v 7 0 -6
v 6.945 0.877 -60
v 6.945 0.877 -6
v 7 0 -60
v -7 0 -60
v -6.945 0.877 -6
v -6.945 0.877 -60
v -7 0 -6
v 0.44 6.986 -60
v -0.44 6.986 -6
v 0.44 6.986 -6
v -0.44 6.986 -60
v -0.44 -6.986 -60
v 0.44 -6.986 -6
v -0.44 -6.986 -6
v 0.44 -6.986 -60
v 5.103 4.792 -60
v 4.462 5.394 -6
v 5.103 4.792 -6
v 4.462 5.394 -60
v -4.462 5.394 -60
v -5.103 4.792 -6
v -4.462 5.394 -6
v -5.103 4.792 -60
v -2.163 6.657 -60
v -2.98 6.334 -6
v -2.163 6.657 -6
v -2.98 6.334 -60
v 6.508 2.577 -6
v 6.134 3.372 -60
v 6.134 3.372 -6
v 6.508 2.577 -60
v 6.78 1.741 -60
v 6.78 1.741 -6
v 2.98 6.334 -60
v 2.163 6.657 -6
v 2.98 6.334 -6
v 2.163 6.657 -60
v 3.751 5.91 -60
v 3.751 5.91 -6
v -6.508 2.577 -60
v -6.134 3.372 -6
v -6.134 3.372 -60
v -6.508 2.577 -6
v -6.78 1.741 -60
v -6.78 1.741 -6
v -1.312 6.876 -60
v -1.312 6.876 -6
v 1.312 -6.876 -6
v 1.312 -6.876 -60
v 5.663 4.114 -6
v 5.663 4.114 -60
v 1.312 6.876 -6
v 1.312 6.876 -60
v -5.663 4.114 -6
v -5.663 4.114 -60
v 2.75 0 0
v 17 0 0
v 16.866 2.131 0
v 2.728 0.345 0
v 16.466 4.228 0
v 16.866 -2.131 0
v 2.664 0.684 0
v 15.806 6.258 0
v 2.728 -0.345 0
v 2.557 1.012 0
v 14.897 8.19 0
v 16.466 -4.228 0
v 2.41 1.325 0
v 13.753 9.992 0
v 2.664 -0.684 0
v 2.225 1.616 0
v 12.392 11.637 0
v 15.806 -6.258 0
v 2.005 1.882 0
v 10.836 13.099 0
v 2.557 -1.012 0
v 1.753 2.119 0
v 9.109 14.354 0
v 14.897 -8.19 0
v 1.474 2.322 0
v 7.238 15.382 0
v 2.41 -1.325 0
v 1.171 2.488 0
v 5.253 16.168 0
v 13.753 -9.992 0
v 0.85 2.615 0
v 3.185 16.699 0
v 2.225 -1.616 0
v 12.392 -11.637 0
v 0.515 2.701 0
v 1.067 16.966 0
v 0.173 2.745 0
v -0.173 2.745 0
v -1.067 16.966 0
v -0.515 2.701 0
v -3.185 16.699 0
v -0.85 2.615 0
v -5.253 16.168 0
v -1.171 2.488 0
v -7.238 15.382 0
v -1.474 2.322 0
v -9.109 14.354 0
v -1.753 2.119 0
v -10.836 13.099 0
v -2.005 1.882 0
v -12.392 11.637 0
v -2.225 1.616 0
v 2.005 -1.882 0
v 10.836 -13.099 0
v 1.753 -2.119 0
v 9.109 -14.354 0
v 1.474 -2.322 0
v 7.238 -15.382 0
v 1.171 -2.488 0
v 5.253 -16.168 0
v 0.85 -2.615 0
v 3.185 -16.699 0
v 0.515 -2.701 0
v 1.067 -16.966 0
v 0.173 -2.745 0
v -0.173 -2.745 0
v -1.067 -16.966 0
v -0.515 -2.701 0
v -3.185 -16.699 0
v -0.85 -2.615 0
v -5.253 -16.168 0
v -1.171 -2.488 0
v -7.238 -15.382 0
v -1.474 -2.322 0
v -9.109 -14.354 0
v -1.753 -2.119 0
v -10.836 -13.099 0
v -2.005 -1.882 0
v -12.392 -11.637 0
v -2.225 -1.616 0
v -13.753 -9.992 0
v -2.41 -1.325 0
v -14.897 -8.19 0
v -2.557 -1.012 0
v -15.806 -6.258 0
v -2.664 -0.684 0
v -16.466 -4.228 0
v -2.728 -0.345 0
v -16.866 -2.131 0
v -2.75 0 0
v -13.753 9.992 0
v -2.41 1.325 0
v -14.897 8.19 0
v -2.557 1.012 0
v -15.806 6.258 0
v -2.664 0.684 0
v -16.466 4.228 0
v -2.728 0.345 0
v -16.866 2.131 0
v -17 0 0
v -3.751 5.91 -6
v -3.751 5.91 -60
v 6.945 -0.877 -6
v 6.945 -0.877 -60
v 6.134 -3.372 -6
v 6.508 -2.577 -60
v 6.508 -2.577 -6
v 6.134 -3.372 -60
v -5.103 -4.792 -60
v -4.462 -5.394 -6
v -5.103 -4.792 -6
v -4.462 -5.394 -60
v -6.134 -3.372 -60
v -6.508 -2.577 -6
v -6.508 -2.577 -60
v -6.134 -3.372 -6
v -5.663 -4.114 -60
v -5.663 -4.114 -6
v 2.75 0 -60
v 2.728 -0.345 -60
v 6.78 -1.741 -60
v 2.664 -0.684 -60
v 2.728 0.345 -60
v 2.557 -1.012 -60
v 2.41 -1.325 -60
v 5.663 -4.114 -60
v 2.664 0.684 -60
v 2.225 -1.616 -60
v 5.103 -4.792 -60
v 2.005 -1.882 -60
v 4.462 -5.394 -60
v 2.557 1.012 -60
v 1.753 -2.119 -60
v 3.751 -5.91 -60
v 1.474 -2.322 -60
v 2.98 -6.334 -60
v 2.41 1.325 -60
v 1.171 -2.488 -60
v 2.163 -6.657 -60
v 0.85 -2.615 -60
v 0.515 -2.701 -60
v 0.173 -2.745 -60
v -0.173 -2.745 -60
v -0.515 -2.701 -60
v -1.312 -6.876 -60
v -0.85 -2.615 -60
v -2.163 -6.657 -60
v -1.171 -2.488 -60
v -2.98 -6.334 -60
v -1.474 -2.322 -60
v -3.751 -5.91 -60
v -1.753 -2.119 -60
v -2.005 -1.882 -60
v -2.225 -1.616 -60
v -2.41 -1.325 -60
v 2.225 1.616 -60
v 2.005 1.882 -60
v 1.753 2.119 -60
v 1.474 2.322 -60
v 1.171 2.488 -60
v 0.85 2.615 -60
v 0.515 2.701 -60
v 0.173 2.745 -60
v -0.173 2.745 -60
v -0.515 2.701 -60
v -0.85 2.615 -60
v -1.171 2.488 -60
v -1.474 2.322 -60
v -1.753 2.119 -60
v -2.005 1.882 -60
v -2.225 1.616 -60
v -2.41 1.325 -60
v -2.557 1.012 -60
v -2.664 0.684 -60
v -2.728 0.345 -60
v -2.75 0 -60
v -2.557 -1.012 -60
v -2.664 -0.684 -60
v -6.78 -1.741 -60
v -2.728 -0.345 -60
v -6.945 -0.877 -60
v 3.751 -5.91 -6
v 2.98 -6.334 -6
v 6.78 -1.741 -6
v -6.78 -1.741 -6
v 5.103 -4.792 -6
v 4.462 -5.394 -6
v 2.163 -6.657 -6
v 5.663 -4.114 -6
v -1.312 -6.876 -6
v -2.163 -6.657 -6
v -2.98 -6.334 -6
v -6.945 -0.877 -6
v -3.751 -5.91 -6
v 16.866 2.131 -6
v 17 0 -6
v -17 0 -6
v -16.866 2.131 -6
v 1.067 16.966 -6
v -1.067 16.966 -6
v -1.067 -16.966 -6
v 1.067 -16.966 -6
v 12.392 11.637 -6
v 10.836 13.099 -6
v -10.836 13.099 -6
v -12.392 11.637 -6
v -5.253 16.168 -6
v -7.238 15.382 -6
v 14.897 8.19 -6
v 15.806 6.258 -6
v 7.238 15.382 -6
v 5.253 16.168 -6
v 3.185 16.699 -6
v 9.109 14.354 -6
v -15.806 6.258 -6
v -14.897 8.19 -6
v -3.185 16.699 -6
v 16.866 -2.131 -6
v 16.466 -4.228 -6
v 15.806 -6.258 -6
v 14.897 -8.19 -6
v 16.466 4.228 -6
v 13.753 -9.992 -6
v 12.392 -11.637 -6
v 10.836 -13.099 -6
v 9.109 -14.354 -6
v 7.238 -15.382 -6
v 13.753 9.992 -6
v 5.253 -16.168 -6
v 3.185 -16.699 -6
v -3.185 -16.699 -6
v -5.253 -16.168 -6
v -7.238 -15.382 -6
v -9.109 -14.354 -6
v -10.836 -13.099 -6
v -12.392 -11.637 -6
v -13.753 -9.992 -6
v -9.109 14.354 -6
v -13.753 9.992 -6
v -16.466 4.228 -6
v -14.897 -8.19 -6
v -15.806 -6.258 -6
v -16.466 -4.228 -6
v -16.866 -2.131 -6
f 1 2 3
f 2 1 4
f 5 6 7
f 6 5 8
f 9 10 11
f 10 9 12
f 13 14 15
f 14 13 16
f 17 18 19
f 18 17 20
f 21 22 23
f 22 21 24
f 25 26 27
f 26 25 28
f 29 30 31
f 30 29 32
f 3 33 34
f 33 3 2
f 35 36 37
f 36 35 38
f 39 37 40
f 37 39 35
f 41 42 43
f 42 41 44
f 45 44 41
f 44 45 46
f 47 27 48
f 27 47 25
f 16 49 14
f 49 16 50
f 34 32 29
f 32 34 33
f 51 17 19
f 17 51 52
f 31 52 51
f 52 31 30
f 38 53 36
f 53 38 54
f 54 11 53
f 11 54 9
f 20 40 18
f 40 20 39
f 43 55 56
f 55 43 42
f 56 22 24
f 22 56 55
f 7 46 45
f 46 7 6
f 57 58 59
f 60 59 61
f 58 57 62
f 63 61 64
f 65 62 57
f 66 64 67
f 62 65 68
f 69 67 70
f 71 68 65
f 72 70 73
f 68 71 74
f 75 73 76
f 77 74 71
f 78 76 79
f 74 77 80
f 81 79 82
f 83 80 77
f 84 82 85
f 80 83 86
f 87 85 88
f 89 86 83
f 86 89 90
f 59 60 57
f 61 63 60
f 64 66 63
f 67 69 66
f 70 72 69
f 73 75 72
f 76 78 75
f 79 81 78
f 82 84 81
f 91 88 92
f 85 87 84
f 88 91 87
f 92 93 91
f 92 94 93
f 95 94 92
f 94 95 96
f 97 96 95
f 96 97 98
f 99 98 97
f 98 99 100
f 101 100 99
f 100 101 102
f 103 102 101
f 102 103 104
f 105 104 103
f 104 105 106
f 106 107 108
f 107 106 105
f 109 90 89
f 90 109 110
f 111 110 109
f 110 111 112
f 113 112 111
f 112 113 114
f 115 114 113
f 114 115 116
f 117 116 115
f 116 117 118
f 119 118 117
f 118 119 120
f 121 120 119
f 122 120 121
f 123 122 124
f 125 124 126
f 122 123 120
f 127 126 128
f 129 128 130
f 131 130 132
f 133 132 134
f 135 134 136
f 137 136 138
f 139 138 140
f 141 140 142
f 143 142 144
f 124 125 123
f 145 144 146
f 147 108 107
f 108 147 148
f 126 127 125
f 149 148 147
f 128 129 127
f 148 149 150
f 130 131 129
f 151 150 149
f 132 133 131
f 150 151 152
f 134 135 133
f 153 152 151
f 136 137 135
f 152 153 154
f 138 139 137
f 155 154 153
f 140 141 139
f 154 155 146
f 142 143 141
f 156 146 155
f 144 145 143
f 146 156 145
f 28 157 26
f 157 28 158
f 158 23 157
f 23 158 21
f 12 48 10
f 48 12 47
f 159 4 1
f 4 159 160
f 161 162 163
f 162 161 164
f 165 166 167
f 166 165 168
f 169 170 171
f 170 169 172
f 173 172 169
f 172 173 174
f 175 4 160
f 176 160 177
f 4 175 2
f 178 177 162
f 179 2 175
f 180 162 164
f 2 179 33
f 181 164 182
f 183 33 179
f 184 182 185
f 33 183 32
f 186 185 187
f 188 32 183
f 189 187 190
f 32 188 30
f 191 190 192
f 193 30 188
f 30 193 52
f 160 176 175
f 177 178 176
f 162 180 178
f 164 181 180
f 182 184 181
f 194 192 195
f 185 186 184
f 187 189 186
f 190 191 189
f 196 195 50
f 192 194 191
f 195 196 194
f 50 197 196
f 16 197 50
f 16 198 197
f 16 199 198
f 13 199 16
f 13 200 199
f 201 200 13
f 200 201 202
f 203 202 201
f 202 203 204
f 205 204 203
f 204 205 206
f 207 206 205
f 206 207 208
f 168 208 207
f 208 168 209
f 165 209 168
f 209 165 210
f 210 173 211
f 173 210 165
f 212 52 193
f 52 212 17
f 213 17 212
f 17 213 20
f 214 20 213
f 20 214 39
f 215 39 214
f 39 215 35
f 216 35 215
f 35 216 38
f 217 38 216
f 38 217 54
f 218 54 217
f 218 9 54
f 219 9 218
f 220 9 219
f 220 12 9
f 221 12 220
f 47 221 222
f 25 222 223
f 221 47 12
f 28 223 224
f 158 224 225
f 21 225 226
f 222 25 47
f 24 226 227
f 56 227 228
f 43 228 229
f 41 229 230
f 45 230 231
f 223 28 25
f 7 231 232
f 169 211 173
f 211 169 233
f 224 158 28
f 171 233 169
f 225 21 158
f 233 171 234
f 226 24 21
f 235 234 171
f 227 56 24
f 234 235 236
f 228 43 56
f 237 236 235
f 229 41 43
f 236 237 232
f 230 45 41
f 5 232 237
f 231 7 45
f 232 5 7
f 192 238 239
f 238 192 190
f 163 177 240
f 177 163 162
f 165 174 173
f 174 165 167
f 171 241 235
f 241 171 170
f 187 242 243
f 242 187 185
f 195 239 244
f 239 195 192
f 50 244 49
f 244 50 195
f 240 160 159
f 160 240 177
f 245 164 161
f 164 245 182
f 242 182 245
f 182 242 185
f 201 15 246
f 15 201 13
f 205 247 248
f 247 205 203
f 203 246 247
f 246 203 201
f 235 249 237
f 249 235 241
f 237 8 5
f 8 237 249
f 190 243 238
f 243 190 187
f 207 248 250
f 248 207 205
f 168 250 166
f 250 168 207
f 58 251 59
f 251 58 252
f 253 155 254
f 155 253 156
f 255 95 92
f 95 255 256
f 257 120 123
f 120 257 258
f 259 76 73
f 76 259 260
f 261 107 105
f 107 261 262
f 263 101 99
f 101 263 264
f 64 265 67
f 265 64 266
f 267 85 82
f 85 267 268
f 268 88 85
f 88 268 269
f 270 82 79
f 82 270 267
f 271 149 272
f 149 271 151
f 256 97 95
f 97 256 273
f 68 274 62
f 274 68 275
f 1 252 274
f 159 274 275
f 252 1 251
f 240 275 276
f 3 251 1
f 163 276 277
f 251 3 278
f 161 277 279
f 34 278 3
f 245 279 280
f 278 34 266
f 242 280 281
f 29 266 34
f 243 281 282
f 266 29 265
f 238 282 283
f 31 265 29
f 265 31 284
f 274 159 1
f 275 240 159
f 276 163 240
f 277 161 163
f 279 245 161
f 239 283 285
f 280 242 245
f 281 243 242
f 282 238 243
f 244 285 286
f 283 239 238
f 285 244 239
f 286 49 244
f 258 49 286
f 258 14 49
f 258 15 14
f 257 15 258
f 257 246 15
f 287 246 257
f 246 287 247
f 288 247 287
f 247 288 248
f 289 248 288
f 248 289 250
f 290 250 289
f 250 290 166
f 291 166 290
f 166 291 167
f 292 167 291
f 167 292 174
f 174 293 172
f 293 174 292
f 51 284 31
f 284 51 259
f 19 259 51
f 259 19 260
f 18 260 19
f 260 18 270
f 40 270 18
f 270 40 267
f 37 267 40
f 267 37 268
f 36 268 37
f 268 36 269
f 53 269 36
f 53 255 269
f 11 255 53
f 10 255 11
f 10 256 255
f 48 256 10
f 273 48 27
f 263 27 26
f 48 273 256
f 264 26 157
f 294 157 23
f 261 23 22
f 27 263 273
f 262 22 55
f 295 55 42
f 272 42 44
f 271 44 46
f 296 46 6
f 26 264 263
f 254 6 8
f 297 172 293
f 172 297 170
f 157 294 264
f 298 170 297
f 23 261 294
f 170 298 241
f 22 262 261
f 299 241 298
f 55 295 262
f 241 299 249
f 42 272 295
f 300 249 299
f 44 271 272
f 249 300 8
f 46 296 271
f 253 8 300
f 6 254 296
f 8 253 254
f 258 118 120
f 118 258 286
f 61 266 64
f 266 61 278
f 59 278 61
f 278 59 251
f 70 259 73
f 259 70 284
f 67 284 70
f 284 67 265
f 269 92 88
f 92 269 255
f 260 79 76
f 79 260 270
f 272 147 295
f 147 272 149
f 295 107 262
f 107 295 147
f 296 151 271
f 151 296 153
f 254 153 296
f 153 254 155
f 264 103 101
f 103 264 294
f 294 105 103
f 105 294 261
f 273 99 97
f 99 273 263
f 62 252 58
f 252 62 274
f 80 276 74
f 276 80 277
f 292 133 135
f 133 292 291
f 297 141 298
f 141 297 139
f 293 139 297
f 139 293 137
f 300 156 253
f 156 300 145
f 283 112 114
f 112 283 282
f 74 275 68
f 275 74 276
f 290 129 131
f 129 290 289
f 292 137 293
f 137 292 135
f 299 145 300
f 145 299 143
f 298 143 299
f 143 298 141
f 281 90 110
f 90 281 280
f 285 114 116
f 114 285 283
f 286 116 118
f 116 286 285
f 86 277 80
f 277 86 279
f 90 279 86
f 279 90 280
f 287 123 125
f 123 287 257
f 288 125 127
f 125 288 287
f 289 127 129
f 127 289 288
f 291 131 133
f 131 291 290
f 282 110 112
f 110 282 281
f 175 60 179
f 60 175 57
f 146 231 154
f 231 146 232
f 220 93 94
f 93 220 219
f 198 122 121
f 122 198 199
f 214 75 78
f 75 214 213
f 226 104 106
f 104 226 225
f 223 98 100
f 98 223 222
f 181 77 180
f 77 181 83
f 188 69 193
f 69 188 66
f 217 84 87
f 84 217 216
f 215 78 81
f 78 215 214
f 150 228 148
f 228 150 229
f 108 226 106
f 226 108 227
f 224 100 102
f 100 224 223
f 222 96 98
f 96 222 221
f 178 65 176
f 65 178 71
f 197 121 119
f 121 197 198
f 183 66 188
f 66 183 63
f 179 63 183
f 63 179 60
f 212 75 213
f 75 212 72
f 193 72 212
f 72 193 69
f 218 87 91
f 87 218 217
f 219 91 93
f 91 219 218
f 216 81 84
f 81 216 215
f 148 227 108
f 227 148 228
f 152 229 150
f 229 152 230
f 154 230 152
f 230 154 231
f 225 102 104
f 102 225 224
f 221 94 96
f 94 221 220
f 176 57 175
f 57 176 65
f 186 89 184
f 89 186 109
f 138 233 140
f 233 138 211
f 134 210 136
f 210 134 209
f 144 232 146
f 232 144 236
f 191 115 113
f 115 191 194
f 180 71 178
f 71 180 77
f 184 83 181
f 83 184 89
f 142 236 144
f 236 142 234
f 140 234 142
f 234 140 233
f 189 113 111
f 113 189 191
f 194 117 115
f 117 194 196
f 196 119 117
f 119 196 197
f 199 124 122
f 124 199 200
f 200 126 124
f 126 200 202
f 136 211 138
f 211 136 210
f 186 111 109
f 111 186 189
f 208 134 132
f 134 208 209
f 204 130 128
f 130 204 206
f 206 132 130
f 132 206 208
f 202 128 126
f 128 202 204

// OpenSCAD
$fn = 50;


difference() {
	union() {
		translate(v = [0, 0, -60.0000000000]) {
			cylinder(h = 60, r = 7.0000000000);
		}
		translate(v = [0, 0, -6.0000000000]) {
			cylinder(h = 6, r = 17.0000000000);
		}
	}
	union() {
		#translate(v = [0, 0, -60]) {
			cylinder(h = 60, r = 2.7500000000);
		}
	}
}
